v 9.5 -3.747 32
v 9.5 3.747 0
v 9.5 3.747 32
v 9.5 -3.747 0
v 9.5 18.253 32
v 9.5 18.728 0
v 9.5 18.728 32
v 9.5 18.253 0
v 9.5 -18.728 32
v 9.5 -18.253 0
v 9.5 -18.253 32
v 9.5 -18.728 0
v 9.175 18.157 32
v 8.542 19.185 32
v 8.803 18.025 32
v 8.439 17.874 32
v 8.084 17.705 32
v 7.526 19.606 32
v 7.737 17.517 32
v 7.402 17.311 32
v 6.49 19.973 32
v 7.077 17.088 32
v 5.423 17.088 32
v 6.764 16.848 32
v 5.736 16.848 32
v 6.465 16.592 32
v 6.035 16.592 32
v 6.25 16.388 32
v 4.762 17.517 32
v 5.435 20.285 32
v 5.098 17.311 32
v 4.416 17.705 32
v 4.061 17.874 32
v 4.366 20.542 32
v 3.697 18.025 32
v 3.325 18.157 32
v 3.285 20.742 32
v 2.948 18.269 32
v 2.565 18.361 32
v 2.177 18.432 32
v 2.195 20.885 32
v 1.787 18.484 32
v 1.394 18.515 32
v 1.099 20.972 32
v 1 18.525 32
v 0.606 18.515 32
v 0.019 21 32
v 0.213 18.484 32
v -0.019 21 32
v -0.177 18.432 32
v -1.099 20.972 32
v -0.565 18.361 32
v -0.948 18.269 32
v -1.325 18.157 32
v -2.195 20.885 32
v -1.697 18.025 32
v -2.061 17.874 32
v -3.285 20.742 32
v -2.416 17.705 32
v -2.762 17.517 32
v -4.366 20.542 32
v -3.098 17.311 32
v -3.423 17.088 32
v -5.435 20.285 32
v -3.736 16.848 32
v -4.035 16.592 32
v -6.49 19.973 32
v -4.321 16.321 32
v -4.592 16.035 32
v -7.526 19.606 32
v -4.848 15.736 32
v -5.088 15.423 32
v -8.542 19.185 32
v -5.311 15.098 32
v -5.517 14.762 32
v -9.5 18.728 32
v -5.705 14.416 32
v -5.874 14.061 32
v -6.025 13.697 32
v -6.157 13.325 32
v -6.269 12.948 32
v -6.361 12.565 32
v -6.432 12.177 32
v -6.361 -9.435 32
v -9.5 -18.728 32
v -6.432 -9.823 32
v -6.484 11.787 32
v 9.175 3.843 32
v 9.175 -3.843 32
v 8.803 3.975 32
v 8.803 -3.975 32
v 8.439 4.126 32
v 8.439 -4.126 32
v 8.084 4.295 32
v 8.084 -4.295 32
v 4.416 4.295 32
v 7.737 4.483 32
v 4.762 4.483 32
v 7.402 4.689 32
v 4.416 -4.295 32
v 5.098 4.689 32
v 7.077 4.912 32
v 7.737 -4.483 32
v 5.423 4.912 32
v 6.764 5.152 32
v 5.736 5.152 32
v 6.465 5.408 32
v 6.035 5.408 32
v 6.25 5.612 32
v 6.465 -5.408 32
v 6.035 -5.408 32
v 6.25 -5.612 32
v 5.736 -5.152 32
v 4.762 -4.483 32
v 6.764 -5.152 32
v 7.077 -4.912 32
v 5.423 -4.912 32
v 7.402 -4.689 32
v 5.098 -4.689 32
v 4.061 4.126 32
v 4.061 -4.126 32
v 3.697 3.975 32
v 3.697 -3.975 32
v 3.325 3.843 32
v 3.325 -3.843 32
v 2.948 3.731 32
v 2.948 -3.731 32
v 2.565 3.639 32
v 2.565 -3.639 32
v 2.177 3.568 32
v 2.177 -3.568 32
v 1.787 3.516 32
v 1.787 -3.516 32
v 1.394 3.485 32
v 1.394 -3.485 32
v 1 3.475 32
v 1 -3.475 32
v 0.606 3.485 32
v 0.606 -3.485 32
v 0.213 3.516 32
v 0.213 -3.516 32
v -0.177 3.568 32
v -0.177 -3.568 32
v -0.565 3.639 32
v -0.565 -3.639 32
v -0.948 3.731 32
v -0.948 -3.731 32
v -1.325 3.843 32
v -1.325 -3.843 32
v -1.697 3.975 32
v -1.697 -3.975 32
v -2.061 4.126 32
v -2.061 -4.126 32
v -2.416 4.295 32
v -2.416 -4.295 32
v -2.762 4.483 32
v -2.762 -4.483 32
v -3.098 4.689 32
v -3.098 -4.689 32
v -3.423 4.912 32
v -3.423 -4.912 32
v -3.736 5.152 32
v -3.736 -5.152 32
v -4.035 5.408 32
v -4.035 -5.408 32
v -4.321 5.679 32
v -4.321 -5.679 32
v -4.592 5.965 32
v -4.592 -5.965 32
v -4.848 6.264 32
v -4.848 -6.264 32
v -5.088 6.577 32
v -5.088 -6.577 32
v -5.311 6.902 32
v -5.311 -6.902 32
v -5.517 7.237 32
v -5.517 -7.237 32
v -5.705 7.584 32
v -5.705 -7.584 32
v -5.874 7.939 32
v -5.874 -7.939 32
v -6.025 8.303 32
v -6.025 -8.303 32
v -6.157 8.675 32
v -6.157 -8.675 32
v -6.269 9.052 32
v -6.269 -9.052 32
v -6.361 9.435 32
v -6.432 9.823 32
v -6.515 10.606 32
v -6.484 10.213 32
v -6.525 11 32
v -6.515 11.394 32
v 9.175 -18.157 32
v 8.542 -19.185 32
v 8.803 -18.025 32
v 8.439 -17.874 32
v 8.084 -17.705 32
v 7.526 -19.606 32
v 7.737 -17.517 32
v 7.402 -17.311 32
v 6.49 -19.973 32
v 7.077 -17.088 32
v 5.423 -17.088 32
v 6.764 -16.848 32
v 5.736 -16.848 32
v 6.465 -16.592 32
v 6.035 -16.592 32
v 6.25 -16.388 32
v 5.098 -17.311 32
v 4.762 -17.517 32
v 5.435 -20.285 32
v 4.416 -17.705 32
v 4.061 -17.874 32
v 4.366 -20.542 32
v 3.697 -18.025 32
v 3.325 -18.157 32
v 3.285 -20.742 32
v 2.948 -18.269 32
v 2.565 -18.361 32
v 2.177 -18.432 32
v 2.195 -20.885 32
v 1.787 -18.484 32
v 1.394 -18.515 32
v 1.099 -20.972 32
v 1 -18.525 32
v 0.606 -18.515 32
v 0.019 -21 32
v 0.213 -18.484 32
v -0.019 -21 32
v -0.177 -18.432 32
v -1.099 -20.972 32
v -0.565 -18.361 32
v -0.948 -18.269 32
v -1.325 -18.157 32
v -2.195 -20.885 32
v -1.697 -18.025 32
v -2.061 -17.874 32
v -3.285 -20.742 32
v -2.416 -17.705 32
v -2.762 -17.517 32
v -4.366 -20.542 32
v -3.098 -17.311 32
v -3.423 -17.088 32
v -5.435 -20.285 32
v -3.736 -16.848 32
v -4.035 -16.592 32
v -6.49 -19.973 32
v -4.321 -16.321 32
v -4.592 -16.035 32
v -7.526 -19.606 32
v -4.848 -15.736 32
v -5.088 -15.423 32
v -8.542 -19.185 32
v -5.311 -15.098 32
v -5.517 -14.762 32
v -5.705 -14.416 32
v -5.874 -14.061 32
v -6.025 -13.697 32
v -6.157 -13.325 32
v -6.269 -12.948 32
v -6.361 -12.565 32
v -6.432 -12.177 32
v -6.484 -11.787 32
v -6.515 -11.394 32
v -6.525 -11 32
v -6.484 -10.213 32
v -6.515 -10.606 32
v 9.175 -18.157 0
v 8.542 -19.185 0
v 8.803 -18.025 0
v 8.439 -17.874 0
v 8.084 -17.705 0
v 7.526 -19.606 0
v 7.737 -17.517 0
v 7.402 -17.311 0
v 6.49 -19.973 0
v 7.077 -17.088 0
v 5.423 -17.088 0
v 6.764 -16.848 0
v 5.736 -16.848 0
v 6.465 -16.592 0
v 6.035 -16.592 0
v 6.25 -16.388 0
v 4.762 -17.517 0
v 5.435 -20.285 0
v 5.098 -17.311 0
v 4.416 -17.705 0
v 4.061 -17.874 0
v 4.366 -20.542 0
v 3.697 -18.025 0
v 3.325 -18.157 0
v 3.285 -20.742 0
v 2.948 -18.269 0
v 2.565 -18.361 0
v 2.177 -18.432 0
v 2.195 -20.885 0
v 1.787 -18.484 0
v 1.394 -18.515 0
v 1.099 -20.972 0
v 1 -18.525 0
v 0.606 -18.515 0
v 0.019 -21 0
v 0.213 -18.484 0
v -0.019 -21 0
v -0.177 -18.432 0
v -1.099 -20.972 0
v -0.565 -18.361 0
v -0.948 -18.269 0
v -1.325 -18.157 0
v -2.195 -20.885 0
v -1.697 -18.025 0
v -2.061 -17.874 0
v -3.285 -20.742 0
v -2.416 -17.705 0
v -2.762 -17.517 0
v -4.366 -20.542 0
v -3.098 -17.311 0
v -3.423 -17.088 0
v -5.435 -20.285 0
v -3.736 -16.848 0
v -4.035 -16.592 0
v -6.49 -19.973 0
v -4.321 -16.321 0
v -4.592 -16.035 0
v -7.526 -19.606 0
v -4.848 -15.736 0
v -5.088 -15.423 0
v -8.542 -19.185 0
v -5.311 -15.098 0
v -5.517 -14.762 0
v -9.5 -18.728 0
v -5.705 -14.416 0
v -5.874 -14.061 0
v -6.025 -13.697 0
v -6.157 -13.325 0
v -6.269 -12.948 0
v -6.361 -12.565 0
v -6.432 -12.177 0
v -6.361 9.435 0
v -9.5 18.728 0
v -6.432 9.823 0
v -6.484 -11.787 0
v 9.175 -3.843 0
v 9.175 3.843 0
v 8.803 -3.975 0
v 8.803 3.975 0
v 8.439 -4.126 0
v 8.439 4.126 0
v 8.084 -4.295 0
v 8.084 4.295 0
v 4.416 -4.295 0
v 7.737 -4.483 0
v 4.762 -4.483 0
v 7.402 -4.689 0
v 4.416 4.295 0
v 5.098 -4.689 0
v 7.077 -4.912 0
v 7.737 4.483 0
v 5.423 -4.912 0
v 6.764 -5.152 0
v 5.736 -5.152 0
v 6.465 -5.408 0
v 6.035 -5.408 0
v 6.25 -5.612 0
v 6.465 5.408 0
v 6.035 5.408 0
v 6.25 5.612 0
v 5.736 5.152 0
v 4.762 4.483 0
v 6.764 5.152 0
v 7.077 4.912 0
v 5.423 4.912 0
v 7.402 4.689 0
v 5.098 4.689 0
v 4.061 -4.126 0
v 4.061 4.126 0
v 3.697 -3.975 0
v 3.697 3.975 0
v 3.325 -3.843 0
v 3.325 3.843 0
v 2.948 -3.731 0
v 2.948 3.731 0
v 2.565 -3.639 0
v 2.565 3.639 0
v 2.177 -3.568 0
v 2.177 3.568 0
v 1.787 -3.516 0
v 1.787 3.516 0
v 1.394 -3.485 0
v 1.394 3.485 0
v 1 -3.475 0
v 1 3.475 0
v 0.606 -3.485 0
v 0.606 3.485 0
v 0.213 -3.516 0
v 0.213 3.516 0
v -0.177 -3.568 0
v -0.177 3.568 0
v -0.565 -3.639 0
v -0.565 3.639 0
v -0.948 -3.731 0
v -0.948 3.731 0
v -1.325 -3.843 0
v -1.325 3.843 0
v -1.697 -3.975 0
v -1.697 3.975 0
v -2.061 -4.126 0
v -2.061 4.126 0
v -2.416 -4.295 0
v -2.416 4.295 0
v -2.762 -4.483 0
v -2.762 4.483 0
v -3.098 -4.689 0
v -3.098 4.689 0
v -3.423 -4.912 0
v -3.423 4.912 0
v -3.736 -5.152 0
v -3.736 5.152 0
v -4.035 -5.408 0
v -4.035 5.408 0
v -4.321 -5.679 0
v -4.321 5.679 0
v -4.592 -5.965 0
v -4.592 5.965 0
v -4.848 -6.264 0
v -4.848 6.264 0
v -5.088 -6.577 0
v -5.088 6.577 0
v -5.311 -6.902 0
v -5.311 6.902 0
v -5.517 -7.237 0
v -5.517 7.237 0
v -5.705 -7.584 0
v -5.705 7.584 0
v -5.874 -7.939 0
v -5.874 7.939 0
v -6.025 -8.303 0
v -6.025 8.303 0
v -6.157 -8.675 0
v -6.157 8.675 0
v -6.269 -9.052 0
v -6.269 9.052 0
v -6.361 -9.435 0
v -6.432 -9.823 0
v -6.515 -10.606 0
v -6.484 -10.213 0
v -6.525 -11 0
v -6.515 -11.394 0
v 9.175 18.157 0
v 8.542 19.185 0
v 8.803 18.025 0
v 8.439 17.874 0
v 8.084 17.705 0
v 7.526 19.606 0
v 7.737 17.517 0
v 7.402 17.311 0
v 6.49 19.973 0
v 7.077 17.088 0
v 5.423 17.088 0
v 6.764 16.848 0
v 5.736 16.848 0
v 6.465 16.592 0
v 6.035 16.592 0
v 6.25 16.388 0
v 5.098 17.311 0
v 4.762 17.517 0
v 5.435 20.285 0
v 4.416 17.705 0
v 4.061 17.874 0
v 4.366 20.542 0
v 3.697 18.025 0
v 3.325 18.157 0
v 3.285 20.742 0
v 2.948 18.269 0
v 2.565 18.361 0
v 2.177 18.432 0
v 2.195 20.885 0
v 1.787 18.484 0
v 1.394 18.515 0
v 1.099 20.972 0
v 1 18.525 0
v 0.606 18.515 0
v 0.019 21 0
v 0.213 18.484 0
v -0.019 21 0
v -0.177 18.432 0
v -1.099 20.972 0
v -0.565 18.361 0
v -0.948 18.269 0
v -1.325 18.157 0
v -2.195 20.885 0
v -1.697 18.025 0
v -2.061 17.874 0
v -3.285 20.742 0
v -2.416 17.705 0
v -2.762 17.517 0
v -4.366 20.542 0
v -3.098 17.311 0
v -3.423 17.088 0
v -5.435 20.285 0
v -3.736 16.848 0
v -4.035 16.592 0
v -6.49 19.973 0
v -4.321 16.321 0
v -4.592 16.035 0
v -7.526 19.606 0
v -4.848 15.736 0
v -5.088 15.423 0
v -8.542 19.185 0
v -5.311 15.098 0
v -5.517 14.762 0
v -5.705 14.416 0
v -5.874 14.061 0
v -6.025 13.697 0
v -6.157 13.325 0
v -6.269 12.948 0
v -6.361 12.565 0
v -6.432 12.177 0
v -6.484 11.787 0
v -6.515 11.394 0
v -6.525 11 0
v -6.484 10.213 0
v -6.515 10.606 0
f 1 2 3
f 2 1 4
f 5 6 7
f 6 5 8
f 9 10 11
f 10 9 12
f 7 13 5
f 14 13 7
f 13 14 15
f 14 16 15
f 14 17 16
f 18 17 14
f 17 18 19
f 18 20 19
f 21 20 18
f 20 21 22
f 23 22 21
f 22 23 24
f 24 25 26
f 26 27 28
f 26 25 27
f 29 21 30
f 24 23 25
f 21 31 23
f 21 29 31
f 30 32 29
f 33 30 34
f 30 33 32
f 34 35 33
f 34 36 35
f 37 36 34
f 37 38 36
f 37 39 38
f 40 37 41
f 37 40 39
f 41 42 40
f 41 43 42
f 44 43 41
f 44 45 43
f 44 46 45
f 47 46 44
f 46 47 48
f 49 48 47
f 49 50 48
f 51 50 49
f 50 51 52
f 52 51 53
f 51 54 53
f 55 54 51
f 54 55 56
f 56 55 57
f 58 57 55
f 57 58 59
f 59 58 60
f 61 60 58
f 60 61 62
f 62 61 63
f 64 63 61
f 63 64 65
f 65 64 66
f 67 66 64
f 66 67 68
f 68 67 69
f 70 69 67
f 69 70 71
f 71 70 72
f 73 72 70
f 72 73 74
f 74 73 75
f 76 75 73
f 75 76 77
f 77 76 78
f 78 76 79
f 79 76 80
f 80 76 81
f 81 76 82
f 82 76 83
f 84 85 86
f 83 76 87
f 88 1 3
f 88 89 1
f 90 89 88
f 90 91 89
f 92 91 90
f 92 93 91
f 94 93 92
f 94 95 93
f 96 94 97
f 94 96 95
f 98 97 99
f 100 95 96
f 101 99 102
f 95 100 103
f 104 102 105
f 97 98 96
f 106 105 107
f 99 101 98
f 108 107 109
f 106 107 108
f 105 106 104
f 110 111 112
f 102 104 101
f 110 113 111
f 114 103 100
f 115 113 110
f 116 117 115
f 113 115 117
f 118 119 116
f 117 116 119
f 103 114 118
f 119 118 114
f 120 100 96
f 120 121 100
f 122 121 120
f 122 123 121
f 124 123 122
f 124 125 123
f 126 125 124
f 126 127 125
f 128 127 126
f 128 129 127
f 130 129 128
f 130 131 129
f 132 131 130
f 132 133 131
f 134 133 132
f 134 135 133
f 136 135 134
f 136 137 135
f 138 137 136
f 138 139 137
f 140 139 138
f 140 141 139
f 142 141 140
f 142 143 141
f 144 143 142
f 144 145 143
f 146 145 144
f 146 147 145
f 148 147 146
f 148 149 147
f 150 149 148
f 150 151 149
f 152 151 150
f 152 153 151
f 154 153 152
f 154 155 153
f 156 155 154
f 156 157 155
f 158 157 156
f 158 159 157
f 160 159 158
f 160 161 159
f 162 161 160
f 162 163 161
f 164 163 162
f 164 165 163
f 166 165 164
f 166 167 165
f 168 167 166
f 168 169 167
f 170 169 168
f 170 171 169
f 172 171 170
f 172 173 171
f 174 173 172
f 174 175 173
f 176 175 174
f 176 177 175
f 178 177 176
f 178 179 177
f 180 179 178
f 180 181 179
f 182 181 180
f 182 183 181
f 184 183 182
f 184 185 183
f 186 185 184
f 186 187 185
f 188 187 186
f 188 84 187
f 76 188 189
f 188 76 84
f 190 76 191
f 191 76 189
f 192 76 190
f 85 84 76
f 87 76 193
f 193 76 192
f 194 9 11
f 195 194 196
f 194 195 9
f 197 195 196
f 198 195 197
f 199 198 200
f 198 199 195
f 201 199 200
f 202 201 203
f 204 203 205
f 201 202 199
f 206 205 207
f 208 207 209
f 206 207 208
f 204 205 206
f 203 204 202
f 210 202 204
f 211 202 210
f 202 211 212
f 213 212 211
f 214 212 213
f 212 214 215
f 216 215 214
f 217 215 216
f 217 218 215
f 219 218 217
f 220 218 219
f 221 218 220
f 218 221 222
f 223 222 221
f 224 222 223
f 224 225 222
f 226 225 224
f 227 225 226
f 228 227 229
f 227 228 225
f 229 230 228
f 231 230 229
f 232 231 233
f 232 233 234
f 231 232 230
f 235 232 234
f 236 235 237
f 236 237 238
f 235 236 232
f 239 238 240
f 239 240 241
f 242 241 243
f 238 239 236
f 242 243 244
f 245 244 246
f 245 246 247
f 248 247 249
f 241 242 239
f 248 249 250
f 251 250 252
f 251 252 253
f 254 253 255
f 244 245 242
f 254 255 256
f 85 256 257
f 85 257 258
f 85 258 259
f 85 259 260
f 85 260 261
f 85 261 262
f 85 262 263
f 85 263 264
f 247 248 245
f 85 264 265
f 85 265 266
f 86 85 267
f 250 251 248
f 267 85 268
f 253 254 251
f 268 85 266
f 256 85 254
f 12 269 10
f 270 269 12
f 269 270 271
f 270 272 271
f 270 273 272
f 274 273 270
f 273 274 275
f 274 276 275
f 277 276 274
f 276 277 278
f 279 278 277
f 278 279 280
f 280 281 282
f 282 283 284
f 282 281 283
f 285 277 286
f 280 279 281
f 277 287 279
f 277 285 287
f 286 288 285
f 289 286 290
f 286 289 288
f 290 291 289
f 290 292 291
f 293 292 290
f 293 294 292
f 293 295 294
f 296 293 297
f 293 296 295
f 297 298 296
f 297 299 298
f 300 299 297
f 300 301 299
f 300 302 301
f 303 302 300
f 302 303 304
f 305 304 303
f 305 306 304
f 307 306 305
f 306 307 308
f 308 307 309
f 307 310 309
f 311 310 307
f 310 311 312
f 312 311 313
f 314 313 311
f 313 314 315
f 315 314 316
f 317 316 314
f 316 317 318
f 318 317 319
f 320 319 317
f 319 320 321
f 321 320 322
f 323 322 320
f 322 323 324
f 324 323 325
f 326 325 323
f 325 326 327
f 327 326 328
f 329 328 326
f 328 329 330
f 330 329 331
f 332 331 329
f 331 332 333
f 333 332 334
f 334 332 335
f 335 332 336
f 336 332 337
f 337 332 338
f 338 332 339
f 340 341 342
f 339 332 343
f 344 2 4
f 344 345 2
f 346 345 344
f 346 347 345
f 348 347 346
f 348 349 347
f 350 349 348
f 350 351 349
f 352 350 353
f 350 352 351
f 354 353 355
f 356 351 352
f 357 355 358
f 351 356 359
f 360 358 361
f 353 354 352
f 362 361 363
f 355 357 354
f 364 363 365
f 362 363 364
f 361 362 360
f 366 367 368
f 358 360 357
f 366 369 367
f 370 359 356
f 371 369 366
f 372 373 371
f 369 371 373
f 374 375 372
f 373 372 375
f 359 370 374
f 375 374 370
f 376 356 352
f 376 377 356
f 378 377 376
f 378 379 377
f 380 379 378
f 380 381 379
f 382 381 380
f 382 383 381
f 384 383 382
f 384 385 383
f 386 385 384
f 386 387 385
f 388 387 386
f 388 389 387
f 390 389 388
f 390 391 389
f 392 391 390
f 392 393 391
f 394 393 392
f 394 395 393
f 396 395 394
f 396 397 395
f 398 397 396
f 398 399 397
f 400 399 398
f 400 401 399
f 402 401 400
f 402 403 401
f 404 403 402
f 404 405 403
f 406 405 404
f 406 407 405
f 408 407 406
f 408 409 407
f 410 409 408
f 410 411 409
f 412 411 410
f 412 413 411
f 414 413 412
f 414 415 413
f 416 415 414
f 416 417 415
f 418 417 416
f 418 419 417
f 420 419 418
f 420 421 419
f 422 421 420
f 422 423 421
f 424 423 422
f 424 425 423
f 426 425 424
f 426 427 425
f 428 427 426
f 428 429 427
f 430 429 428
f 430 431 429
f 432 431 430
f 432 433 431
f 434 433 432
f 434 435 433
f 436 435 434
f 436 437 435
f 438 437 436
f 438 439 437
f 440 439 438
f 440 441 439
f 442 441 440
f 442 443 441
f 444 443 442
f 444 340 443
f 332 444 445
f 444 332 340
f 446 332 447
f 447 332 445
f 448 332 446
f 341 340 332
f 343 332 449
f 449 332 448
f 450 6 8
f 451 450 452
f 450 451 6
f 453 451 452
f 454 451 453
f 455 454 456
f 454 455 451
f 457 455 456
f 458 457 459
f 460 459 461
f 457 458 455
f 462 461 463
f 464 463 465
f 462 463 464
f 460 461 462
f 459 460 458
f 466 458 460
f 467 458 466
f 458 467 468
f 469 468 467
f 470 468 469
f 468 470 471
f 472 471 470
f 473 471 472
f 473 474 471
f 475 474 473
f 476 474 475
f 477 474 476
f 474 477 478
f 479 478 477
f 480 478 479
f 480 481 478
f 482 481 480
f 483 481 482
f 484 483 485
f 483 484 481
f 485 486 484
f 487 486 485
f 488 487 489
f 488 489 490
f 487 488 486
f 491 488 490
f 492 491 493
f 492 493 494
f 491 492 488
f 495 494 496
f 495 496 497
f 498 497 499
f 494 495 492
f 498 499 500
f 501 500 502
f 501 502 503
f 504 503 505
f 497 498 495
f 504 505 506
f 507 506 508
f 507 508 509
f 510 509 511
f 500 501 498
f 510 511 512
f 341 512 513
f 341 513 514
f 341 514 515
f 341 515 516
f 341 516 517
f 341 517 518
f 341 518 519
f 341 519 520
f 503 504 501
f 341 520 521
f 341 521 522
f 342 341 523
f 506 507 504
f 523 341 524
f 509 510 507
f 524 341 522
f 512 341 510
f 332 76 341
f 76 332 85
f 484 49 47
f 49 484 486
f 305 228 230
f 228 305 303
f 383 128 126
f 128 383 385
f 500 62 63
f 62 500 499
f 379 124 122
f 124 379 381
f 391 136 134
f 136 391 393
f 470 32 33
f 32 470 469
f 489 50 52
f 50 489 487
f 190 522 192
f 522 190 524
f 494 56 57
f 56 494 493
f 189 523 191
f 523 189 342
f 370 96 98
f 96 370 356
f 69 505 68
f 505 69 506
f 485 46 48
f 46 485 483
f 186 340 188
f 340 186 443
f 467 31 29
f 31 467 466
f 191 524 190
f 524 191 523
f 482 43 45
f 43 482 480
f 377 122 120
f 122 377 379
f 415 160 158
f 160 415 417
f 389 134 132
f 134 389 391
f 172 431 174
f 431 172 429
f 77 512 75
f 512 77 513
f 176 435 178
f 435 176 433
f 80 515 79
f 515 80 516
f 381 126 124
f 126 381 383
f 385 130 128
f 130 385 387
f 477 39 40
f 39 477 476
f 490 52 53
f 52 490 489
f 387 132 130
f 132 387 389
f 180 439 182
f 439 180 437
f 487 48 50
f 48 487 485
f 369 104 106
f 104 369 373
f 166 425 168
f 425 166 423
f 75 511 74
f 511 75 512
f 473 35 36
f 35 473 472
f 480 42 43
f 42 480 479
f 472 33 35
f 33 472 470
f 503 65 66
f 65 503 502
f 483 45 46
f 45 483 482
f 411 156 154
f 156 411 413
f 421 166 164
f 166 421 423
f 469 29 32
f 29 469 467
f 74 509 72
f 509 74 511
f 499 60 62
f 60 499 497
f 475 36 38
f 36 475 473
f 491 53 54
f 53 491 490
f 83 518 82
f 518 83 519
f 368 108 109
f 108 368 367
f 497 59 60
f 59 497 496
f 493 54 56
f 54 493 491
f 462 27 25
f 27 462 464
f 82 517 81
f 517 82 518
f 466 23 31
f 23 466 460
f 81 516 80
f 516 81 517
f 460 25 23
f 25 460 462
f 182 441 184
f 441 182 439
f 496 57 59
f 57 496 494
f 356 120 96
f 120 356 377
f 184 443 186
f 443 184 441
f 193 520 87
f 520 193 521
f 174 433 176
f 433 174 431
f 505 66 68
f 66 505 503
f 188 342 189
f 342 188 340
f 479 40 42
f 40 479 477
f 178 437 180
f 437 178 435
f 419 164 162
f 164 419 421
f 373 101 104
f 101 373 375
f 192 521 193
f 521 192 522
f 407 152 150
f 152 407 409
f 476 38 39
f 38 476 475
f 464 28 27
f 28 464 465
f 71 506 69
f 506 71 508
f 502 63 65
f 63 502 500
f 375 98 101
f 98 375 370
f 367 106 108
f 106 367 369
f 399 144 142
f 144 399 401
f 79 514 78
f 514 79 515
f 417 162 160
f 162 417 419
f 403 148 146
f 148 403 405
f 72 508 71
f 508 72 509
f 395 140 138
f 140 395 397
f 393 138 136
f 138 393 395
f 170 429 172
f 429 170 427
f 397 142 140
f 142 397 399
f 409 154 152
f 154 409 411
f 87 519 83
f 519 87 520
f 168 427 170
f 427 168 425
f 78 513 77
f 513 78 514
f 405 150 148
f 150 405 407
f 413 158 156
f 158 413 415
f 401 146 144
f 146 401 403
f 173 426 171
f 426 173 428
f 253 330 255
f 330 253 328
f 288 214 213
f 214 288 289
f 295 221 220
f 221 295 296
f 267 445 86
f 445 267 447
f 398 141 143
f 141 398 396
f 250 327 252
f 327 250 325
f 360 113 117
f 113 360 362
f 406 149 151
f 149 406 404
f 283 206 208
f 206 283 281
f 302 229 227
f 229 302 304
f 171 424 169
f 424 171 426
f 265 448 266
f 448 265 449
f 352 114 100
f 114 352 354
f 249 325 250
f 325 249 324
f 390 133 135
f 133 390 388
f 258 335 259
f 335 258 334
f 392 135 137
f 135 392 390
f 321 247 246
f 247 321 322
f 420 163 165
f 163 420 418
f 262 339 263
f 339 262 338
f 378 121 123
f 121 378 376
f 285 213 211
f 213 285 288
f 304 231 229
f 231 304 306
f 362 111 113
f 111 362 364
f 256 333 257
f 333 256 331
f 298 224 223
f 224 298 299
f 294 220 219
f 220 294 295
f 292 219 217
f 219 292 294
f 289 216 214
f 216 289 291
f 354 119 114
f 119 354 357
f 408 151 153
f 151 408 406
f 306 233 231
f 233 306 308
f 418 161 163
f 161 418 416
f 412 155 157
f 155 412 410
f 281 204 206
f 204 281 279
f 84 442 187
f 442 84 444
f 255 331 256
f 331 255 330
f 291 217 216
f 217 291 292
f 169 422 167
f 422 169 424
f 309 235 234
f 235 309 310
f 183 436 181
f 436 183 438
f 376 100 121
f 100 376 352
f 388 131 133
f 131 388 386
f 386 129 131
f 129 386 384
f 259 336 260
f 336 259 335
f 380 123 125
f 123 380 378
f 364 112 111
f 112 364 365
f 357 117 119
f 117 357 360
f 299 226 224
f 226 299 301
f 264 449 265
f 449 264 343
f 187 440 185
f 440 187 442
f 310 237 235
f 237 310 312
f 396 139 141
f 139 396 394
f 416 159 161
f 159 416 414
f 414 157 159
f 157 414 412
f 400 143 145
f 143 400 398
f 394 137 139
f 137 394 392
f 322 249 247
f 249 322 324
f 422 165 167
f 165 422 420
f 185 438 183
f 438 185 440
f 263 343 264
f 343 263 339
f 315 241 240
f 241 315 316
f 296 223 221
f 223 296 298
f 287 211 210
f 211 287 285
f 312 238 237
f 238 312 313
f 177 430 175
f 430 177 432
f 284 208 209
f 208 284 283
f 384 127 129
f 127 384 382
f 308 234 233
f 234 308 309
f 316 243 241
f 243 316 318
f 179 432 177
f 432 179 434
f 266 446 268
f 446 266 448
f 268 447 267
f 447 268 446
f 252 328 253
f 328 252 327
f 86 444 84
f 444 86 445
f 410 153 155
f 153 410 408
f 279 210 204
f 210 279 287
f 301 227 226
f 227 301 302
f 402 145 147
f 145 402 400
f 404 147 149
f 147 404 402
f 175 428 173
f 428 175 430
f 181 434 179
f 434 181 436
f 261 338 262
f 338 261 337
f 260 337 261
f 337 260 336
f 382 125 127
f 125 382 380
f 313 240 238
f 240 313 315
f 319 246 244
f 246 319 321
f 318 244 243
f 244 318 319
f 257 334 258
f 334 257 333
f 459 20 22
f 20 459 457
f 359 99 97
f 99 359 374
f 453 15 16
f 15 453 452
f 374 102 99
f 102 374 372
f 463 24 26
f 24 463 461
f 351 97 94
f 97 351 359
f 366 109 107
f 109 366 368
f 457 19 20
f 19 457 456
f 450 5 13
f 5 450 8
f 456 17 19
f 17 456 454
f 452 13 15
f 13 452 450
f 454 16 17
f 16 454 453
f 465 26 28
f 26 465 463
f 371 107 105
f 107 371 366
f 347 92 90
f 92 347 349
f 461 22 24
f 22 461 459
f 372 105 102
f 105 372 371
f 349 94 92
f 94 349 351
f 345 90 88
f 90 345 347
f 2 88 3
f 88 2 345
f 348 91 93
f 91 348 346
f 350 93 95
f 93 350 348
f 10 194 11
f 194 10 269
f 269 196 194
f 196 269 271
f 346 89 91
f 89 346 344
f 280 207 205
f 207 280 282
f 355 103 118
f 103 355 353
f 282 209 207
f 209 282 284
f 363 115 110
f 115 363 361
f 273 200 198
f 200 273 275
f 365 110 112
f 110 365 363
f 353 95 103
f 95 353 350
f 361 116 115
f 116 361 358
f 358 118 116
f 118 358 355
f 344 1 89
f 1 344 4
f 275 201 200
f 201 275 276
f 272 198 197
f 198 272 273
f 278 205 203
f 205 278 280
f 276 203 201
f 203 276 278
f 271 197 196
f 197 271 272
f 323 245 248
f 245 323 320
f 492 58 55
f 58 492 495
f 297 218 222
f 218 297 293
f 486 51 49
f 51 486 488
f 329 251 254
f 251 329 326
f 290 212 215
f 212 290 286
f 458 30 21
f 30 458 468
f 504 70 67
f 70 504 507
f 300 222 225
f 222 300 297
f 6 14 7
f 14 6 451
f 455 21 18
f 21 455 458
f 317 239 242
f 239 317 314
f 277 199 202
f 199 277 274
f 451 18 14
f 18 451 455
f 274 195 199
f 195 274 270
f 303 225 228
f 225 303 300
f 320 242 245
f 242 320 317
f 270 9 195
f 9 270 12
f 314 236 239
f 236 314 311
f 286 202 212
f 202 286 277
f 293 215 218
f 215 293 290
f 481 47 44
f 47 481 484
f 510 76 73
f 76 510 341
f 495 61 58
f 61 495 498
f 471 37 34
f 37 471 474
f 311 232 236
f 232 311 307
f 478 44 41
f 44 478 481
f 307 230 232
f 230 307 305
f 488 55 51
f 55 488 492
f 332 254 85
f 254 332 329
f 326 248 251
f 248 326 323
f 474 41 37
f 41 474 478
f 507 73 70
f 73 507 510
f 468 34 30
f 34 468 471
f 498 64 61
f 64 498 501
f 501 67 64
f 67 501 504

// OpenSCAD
$fn = $preview ? 30 : 120;
epsilon = 0.001;

pole_diameter = 15.05;
width = 19;
depth = 42;
height = 32;

module roundConcaveFillet(radius, rads) {
    rotate_extrude()
        translate([radius, 0, 0])
            difference() {
                square([rads, rads]);
                
                translate([rads, rads])
                    circle(r = rads);
            }
}

module roundConvexFillet(radius, rads) {
    rotate_extrude()
        translate([radius-rads, 0, 0])
            difference() {
                square([rads+epsilon, rads+epsilon]);
                circle(r = rads);
            }
}

module halfCircleConvexFillet(radius, rads) {
    hrads = rads/2;
    rotate_extrude()
        translate([radius-hrads, 0, 0])
            difference() {
                translate([-hrads, 0, 0])
                    square([rads+epsilon, hrads+epsilon]);
                circle(r = hrads);
            }
}

module thing() {
    difference() {
        translate([0,0,height/2])
            cube([width, depth, height], center = true);
        
        // Negative Y hole
        translate([1, 11, 0])
            cylinder(h = height + epsilon, d = pole_diameter, center = false);
        // Positive Y hole
        translate([1, -11, 0])
            cylinder(h = height + epsilon, d = pole_diameter, center = false);
        // Negative Y opening
        translate([11.5, 11, 0])
            cylinder(h = height + epsilon, d = pole_diameter, center = false);
        // Positive Y opening
        translate([11.5, -11, 0])
            cylinder(h = height + epsilon, d = pole_diameter, center = false);
    }
}

module curve() {
    difference() {
        translate([0,0,height/2])
            cube([width, depth, height], center = true);
        cylinder(height + epsilon, d = depth + epsilon, center = false);
    }
}

difference() {
    thing();
    curve();
}
